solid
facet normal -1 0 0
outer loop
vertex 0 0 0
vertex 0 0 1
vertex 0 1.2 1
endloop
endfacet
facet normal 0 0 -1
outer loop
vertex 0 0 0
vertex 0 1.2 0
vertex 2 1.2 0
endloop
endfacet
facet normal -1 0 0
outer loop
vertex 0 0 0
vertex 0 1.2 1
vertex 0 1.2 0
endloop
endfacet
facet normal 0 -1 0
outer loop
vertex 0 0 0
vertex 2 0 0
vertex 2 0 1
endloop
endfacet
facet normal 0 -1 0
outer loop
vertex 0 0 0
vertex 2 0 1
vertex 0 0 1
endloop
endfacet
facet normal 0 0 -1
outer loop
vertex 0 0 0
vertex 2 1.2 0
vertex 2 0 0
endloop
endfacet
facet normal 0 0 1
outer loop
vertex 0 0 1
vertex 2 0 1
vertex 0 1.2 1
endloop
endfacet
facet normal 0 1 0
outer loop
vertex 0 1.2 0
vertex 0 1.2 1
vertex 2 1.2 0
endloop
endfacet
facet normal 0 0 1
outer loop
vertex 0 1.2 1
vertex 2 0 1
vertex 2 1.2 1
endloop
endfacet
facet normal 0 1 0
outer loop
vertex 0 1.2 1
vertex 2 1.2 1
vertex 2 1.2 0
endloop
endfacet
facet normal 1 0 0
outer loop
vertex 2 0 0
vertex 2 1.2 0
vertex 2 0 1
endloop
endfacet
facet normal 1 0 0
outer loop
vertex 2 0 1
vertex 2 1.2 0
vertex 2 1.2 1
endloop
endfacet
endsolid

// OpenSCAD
/* Warning, this is a very basic generator with a lot of approximation 
input data : [CDFP, E7C, 2x1.2mm, 2, , A, C04-25527A]
generated by com.zoubworld.electronics.cad.model3d.Basic
Date : Sun Feb 15 10:50:49 CET 2026
*/

//body
color("black")
translate([0,0,0])
cube([2.0,1.2,1.0], center=false);
